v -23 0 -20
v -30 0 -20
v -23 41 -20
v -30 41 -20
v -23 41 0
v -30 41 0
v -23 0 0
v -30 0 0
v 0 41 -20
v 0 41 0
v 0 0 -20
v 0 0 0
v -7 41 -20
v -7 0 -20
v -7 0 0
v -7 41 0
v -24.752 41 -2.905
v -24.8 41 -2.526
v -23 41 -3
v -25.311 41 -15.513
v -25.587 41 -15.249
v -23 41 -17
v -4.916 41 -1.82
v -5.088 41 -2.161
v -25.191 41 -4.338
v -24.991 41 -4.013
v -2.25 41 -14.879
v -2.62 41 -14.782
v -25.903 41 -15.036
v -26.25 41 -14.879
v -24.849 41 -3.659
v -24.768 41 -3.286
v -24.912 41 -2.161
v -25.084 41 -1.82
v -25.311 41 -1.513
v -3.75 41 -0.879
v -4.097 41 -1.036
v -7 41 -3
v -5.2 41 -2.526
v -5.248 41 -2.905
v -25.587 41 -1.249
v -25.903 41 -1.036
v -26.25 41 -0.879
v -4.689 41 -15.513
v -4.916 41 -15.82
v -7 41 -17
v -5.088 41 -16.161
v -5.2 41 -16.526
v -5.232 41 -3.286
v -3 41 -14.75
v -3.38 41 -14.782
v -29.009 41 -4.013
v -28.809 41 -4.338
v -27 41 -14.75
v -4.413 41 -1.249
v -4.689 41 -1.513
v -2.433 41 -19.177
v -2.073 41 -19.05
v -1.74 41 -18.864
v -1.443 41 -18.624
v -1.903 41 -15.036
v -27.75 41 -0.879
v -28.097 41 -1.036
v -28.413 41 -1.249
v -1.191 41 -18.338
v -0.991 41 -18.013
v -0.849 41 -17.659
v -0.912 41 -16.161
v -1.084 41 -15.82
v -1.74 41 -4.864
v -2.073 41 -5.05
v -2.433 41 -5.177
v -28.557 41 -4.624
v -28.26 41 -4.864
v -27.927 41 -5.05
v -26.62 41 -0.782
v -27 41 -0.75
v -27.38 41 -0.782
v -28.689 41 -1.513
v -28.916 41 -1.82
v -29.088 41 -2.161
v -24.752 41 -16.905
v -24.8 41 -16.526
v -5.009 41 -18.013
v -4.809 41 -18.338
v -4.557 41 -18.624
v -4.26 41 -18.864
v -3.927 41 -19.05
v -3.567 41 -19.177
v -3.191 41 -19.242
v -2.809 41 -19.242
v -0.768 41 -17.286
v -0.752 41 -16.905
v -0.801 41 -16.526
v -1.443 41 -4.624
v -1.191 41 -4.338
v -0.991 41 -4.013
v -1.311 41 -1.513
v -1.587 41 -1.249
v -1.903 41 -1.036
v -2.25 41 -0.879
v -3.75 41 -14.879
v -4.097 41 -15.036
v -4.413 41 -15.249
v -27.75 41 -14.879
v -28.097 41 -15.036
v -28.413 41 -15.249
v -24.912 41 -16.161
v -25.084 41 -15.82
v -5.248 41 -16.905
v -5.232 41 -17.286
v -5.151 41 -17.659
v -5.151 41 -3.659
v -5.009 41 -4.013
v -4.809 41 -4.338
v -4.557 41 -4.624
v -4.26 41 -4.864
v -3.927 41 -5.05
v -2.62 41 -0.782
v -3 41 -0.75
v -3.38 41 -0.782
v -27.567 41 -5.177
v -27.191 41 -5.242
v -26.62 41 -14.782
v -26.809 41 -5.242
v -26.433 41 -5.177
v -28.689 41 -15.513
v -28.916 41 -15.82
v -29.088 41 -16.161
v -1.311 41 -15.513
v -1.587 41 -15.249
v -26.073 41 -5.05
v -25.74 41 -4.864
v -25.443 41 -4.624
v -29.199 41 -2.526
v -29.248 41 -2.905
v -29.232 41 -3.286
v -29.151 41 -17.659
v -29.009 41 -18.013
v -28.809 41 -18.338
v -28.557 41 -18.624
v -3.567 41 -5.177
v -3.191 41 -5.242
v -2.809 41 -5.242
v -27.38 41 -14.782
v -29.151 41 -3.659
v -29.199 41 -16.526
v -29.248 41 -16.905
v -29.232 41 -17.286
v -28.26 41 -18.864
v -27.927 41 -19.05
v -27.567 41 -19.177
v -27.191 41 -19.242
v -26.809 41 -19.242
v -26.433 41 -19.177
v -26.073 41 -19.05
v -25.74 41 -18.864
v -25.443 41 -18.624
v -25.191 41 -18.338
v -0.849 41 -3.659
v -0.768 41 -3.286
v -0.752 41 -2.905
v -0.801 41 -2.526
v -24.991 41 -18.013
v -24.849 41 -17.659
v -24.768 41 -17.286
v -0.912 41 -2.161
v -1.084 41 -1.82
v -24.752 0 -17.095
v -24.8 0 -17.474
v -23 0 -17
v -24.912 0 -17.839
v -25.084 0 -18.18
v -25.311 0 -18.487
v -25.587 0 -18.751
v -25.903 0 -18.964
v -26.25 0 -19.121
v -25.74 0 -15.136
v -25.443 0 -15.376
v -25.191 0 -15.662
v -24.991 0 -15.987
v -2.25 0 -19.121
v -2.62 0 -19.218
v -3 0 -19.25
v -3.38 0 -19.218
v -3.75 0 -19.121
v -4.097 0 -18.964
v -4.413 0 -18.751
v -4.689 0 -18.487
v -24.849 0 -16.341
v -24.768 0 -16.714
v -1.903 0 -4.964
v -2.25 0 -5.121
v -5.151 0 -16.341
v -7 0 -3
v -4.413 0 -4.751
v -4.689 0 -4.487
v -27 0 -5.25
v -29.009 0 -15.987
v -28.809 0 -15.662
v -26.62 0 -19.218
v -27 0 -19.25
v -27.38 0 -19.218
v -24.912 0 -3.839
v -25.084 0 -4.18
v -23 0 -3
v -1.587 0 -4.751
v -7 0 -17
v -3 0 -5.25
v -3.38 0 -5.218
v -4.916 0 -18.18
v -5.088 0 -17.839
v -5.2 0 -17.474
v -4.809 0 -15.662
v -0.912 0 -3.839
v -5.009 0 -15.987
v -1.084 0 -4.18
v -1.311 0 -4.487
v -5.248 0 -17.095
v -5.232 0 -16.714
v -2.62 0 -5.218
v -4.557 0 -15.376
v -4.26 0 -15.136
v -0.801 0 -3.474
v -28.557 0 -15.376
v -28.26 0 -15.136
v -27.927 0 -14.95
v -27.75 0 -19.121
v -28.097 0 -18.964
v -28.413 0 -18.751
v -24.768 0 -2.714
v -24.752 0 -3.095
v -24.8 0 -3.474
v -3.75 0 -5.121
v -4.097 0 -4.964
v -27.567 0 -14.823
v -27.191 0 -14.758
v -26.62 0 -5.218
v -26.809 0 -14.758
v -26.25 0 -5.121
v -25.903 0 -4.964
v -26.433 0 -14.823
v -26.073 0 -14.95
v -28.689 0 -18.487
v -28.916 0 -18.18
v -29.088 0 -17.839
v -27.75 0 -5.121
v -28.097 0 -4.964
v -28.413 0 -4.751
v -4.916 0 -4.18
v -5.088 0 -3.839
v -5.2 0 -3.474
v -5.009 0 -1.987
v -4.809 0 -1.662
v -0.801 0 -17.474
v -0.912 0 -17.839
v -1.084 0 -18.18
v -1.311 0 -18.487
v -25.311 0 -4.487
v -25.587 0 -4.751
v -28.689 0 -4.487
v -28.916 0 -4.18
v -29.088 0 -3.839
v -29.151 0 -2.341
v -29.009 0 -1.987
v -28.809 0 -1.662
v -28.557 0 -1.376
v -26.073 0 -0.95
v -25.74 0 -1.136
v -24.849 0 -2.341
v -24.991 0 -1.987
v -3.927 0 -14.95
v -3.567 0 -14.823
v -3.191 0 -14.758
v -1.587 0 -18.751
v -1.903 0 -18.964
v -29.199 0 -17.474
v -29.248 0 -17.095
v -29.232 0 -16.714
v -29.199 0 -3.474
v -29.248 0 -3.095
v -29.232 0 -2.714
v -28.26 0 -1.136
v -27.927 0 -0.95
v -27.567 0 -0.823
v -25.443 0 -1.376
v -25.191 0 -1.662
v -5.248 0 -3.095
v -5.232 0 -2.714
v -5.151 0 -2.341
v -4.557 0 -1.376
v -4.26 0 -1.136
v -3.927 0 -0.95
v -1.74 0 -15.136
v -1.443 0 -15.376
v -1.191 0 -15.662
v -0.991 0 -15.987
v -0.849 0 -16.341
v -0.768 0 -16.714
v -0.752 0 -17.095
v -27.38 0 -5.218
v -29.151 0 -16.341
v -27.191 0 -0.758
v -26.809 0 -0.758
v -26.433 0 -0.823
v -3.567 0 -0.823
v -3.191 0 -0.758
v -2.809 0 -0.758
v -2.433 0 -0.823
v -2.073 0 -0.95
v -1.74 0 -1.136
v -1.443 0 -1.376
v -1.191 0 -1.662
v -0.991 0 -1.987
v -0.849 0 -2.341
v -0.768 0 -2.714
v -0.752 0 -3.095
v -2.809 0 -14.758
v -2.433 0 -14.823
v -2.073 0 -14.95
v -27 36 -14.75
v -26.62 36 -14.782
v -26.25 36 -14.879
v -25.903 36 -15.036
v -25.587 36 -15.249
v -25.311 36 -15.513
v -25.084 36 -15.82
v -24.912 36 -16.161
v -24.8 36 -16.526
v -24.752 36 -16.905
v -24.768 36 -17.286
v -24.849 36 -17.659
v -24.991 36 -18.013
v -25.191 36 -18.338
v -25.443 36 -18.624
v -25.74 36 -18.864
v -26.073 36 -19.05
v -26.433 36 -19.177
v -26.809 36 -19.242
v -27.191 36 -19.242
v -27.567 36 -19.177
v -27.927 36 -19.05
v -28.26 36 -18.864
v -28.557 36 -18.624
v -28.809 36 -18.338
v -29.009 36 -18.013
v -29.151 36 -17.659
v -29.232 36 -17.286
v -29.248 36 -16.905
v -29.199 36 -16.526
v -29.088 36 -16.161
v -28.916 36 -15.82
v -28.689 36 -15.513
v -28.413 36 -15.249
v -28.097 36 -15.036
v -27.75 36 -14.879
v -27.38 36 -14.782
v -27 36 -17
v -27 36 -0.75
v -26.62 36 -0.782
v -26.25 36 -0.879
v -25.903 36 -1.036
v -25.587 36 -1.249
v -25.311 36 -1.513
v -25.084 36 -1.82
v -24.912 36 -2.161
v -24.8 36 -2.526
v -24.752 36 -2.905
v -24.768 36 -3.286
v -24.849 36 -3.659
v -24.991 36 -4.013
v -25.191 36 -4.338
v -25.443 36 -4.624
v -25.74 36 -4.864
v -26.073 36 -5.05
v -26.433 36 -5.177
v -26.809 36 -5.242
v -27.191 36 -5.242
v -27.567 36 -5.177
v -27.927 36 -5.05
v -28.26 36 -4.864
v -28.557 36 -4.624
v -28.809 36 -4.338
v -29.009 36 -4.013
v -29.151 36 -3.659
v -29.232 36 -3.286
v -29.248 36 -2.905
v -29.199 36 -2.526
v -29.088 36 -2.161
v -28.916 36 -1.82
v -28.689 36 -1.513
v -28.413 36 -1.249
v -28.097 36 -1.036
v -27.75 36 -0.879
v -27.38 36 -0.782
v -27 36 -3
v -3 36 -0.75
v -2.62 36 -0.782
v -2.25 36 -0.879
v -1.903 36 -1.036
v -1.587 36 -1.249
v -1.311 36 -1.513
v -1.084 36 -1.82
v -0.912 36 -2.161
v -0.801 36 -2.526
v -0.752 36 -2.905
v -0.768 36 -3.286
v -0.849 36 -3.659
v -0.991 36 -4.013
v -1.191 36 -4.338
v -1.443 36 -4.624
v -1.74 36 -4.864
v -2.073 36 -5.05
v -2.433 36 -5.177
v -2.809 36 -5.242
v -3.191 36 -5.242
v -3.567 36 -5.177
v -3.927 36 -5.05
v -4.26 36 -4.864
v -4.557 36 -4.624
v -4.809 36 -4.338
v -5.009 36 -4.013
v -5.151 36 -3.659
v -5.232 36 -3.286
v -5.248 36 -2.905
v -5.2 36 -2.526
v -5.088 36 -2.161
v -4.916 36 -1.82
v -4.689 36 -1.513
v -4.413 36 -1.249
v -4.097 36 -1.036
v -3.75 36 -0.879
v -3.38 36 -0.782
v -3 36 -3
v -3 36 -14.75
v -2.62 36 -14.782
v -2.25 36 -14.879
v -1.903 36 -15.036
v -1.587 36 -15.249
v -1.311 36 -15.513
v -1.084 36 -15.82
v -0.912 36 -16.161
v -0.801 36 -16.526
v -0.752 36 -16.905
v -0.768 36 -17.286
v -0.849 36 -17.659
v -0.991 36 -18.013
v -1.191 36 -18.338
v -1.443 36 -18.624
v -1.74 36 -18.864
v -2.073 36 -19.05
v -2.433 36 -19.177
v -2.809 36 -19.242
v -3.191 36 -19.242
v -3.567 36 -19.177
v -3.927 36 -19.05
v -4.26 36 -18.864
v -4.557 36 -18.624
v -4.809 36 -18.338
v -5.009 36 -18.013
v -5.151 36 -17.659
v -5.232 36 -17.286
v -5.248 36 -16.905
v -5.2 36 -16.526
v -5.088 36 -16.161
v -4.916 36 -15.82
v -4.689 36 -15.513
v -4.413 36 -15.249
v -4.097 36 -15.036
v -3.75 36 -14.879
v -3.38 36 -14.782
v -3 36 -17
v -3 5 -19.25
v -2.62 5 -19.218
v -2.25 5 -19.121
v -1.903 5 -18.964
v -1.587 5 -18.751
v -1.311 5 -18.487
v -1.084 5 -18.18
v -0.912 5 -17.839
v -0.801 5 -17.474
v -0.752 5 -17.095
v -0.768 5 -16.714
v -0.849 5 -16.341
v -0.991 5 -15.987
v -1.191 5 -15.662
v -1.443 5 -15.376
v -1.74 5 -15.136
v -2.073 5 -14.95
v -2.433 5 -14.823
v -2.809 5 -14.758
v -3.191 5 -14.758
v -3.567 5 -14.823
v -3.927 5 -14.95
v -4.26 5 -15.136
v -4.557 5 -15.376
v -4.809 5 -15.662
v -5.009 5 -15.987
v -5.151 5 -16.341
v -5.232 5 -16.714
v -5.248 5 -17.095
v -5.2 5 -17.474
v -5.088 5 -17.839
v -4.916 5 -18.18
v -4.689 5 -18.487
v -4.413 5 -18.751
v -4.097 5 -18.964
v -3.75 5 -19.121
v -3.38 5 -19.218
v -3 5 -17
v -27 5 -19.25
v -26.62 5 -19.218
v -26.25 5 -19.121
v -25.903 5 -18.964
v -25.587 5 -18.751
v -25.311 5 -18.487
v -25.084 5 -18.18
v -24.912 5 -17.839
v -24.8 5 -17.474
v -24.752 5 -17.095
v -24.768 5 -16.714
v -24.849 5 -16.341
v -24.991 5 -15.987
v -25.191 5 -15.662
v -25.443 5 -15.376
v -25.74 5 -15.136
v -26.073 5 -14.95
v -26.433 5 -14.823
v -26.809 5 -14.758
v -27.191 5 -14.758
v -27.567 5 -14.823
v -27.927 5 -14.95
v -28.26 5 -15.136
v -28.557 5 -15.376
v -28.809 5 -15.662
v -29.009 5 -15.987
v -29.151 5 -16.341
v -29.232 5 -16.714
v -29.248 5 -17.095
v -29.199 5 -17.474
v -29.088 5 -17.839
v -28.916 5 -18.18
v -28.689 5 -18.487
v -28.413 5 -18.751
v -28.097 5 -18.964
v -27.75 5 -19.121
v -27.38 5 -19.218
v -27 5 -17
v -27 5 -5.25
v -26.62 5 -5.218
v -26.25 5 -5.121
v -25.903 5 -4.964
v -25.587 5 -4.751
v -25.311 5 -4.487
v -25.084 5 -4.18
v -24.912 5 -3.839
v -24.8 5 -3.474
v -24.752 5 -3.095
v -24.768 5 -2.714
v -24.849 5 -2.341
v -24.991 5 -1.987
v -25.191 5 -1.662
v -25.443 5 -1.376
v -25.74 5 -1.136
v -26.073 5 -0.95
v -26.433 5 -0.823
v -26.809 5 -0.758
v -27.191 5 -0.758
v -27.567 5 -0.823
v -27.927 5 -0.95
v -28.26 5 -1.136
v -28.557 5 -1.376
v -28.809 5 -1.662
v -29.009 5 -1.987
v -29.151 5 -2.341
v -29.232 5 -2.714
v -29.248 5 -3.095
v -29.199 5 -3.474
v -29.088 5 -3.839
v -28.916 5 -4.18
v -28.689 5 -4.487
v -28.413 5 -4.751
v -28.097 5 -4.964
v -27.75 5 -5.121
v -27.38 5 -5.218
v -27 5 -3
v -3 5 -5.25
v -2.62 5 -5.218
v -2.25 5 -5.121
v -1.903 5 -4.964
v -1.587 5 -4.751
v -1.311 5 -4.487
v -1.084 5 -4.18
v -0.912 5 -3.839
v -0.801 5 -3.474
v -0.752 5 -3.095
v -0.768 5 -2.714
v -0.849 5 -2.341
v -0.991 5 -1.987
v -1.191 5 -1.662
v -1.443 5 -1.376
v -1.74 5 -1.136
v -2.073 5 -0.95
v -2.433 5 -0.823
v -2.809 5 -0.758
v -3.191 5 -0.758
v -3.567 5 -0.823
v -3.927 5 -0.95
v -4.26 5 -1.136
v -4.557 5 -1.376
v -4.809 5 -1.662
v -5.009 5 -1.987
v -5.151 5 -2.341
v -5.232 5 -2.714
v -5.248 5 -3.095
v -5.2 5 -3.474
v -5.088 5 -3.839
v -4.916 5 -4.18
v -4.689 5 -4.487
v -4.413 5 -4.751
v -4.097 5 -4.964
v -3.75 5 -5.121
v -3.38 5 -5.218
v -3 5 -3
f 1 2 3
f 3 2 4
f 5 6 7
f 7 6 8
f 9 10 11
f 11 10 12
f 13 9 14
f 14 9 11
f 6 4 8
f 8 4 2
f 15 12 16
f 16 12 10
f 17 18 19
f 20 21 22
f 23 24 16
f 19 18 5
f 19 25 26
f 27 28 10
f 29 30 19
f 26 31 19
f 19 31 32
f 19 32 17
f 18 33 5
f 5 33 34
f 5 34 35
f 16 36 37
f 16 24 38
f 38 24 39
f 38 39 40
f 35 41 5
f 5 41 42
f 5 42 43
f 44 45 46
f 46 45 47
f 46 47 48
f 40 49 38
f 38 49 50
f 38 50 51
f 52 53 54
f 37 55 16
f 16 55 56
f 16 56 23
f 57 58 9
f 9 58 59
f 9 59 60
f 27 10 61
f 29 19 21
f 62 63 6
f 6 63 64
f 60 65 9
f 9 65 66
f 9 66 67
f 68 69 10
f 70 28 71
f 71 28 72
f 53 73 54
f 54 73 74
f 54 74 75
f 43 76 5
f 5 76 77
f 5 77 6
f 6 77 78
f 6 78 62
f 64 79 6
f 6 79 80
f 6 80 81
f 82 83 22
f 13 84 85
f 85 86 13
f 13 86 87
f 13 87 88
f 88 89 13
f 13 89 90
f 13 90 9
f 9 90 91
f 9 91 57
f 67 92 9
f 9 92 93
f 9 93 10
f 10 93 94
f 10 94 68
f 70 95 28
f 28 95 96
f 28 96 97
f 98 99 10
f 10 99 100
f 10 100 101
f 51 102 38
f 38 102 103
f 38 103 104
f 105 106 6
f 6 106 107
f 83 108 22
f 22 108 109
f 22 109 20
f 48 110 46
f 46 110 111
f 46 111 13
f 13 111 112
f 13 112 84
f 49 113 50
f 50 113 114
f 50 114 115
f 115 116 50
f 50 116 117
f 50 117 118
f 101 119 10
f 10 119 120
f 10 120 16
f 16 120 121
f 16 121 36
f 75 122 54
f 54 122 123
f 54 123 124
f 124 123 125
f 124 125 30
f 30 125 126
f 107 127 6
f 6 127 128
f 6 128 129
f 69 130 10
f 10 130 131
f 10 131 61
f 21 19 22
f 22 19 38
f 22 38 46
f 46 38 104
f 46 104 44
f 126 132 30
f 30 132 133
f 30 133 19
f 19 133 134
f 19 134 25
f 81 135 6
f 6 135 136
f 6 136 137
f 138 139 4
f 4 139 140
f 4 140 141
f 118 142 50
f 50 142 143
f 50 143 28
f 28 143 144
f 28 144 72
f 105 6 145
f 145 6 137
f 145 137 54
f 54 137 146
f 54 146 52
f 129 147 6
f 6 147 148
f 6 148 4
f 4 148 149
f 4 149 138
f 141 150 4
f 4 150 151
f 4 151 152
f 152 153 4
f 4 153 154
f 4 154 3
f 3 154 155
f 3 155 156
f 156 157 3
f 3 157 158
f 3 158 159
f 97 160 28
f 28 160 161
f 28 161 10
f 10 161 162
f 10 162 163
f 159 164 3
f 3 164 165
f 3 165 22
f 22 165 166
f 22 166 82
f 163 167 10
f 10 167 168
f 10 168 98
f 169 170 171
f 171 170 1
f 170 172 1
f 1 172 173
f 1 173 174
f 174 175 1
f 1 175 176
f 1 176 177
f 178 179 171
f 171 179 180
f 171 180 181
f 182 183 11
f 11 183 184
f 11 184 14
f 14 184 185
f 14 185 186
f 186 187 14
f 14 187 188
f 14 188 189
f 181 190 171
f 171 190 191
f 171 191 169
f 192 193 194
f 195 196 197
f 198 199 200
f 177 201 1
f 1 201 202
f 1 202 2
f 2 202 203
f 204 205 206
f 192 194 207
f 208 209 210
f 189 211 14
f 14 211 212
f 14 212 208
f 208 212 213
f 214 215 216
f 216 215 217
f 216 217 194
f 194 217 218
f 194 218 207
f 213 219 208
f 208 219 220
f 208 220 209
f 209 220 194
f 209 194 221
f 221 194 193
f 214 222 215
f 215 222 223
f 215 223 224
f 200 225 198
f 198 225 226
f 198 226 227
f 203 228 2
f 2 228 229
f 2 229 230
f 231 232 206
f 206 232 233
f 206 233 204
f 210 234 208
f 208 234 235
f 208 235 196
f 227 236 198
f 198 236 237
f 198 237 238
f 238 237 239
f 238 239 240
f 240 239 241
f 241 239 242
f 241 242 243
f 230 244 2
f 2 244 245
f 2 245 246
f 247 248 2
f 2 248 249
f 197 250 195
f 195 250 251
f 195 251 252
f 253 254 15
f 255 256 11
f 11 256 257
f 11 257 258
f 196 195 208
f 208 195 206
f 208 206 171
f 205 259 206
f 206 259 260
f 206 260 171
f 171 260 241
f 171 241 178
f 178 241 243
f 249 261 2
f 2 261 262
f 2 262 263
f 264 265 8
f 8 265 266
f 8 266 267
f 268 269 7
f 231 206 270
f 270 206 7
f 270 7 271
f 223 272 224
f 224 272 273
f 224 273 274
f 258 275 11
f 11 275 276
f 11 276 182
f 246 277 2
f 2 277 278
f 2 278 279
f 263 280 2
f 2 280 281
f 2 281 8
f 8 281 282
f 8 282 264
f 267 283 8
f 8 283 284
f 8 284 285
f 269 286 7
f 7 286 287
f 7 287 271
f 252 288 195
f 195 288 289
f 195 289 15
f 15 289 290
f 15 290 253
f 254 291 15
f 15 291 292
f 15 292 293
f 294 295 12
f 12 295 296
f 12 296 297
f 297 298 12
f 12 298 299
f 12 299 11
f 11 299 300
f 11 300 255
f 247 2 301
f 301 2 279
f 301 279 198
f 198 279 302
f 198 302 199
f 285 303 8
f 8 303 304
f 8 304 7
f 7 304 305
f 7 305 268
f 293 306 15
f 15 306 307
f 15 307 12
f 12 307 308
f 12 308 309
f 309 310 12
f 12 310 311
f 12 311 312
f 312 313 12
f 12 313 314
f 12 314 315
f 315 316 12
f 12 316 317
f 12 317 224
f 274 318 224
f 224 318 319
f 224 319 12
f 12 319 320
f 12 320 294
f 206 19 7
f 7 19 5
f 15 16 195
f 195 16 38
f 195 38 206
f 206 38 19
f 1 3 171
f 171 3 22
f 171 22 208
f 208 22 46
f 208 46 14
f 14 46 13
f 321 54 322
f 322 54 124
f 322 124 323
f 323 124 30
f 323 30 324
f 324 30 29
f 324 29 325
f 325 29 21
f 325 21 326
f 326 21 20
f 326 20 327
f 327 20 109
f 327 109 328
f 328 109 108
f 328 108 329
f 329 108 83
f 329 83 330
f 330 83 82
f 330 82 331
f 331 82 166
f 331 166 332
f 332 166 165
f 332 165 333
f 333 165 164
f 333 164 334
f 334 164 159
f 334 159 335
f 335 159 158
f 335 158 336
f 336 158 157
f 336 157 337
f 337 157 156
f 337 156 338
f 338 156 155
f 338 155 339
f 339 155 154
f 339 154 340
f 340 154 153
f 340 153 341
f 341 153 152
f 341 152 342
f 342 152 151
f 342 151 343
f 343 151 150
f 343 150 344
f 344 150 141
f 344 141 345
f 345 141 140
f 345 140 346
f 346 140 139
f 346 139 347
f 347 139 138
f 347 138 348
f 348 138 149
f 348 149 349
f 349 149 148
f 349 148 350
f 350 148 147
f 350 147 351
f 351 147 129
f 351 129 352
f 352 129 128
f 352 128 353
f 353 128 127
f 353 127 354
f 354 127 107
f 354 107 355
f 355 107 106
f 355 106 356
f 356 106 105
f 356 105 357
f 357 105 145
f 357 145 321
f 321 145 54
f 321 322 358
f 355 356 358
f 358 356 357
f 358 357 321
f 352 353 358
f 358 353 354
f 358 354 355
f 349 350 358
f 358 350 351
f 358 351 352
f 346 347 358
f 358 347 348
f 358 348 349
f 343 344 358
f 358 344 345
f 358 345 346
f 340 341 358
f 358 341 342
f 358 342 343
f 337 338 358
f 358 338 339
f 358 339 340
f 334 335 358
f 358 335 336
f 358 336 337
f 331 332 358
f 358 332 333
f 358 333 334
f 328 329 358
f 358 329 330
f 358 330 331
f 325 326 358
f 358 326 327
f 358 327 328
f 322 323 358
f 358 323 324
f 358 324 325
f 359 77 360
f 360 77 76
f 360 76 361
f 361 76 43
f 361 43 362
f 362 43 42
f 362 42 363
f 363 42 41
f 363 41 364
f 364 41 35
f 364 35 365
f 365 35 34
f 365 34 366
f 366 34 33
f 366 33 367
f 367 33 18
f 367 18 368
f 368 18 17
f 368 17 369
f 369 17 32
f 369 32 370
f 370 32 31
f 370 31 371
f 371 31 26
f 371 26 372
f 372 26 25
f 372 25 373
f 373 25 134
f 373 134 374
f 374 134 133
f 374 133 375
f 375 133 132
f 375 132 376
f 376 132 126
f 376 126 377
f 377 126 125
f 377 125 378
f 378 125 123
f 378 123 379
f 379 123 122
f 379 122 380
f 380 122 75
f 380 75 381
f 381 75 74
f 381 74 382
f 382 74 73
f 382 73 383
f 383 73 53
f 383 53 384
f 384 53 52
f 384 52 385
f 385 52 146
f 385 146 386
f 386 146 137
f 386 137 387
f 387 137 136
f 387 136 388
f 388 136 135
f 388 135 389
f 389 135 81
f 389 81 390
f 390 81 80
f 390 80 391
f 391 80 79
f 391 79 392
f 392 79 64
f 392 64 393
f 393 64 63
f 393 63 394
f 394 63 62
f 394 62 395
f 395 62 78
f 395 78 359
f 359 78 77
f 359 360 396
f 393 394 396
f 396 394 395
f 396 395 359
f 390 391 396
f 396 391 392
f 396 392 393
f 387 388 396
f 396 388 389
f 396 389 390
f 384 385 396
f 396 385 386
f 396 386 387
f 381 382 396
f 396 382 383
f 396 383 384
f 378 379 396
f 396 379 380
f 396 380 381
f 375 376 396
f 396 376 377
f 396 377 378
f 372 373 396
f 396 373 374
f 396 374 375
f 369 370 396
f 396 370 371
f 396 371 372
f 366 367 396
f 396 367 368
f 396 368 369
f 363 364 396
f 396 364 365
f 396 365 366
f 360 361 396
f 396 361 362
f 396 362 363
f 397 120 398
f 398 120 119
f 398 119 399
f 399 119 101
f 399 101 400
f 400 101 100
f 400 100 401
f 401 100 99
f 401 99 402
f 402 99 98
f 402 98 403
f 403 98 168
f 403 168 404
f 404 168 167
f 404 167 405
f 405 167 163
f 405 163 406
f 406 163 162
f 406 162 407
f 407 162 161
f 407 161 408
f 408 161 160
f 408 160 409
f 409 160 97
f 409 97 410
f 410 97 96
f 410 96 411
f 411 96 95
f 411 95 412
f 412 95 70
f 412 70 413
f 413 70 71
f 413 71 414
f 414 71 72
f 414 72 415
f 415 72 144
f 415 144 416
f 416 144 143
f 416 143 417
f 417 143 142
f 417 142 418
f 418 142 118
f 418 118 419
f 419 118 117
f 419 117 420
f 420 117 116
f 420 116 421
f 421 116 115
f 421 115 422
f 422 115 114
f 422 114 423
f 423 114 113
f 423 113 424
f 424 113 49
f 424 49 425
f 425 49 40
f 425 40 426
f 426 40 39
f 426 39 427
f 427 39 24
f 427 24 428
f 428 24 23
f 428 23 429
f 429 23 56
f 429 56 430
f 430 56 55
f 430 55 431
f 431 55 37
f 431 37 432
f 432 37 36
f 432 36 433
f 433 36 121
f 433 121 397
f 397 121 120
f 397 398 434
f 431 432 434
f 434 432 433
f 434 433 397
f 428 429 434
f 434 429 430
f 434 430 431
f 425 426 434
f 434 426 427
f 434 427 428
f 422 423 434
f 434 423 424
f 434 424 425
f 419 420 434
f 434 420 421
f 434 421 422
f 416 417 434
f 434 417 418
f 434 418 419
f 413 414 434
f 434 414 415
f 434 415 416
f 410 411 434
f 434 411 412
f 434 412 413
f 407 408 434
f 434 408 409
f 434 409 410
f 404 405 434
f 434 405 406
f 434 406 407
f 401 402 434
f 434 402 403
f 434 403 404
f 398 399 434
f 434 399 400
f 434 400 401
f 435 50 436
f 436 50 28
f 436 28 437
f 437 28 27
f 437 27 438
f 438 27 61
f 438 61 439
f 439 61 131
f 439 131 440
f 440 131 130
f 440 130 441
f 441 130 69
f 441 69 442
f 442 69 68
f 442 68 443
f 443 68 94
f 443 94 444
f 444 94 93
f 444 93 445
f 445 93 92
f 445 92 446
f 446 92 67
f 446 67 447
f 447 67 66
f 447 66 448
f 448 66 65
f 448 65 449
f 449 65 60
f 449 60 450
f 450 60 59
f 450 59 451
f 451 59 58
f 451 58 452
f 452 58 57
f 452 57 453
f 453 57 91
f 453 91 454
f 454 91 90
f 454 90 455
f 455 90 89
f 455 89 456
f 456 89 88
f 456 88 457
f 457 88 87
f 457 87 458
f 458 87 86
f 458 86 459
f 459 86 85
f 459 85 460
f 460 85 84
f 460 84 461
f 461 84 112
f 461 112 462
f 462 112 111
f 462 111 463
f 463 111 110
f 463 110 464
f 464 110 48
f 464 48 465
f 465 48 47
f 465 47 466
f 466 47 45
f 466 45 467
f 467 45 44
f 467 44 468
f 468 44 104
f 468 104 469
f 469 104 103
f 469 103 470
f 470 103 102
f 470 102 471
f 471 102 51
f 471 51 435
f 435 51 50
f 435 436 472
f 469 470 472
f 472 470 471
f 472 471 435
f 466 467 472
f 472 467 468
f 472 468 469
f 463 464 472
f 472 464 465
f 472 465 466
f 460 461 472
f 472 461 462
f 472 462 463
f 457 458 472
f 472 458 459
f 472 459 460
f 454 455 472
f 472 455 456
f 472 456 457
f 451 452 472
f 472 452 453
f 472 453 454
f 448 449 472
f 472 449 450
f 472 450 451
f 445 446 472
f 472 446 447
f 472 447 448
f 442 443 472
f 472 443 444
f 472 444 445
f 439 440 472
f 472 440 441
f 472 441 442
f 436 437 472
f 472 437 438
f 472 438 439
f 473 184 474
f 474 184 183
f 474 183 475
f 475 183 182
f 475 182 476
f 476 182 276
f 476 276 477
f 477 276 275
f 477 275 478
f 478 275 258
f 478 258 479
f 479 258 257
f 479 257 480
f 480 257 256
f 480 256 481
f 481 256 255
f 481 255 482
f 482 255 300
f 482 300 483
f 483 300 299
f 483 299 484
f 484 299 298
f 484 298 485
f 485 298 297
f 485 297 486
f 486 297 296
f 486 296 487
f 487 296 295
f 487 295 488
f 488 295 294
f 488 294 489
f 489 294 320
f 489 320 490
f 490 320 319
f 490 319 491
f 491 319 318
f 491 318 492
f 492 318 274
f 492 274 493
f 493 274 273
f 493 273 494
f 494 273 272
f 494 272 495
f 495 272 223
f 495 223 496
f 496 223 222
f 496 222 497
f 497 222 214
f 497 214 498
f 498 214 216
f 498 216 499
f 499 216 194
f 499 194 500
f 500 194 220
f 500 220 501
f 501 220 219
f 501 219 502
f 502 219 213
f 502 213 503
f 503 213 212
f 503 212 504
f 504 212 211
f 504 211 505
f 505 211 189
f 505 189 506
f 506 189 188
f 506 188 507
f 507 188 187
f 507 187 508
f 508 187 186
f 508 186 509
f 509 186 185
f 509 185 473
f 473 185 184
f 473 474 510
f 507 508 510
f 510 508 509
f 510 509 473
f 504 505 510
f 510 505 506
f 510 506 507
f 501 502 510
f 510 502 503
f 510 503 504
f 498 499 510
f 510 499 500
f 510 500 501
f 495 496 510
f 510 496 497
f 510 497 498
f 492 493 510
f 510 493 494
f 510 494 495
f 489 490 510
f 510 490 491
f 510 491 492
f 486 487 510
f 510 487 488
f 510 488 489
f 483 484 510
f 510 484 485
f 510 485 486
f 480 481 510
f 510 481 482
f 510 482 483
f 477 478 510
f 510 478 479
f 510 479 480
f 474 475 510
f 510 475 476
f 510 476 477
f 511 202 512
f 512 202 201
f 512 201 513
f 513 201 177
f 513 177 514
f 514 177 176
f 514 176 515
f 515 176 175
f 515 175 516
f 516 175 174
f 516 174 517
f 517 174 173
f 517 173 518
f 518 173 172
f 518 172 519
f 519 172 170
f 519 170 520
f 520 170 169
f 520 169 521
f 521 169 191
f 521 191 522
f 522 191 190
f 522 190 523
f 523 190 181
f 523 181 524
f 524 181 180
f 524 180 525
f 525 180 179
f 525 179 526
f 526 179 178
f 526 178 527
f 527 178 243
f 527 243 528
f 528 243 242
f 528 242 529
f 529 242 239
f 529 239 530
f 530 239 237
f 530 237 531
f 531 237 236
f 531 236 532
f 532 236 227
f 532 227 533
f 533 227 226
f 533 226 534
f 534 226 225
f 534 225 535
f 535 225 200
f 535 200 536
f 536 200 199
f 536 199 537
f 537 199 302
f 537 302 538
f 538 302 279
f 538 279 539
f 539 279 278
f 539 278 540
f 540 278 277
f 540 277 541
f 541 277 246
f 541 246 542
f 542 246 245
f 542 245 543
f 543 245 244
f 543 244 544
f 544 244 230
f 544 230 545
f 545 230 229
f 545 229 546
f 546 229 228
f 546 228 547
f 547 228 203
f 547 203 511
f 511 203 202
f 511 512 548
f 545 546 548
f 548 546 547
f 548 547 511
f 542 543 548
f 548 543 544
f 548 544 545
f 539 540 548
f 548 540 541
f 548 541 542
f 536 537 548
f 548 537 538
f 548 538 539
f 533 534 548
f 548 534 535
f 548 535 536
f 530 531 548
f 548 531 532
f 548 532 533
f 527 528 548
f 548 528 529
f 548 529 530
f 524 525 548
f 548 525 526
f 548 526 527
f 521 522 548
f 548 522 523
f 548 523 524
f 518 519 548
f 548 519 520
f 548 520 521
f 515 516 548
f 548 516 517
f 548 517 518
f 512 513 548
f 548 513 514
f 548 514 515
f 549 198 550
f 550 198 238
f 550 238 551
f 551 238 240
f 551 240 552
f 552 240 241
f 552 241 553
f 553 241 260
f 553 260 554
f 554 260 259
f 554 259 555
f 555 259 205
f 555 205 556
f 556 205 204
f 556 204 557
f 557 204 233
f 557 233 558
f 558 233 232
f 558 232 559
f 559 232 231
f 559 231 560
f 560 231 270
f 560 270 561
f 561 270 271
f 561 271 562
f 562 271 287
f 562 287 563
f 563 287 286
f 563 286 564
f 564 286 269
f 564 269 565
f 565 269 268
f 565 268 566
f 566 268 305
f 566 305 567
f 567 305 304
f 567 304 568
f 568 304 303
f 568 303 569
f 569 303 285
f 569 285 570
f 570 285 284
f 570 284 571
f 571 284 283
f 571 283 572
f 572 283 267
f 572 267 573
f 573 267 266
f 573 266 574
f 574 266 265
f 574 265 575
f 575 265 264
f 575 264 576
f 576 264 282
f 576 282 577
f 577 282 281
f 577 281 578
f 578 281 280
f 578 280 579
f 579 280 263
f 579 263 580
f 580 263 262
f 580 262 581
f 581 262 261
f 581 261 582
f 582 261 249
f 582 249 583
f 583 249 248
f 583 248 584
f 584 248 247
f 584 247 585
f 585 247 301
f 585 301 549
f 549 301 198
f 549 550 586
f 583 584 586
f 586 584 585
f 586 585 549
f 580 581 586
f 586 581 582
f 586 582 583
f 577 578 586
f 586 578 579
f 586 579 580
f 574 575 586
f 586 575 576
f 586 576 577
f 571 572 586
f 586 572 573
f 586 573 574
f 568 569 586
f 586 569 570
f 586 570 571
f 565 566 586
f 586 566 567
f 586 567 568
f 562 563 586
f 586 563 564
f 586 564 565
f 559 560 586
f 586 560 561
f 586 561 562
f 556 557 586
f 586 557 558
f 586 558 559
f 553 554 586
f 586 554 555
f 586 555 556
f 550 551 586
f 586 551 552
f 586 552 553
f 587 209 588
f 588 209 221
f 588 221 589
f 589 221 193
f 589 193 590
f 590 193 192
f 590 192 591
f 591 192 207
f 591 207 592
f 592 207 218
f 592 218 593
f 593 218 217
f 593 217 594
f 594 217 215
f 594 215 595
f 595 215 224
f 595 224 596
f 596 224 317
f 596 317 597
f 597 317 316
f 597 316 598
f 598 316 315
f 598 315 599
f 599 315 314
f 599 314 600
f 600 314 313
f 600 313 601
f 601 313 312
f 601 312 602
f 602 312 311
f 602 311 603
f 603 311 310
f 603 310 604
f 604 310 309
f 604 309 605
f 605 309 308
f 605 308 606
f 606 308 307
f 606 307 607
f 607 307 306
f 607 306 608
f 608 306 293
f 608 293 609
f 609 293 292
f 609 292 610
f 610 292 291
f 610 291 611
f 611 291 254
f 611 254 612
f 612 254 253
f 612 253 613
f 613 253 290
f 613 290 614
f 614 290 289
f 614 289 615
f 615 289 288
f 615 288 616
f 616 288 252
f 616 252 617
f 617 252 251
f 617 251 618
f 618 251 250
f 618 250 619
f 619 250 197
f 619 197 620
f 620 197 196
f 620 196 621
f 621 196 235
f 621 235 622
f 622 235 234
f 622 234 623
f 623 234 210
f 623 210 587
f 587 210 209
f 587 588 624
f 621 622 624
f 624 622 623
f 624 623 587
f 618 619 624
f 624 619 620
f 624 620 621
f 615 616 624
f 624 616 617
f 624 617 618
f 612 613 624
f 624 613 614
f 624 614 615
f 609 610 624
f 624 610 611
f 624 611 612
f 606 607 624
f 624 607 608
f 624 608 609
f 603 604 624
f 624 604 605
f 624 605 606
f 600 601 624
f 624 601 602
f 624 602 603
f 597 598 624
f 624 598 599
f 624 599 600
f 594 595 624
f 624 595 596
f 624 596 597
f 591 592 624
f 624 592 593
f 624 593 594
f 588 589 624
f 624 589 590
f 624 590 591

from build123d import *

# Parameters (mm, degrees)
SKETCH_1_W           = 30
SKETCH_1_H           = 20
EXTRUDE_1_DEPTH      = 41
CUT_EXTRUDE_15_REACH = 56.599
SKETCH_17_W          = 7
SKETCH_17_H          = 8
SKETCH_17_W_2        = 16
SKETCH_17_H_2        = 3
SKETCH_20_R          = 2.25
CUT_EXTRUDE_18_DEPTH = 5
SKETCH_21_W          = 8
SKETCH_21_H          = 41
EXTRUDE_2_DEPTH      = 7
SKETCH_22_W          = 8
SKETCH_22_H          = 41
EXTRUDE_3_DEPTH      = 7
CUT_EXTRUDE_START    = -5
SKETCH_23_R          = 2.25
CUT_EXTRUDE_19_DEPTH = 5


with BuildPart() as part:
    # 草图1 → 凸台-拉伸1 (new body)
    with BuildSketch(Plane(origin=(0, 0, 0), x_dir=(1, 0, 0), z_dir=(0, 1, 0))):
        with Locations((-15, 10)):
            Rectangle(SKETCH_1_W, SKETCH_1_H)
    extrude(amount=EXTRUDE_1_DEPTH)

    # 草图17 → 切除-拉伸15 (cut, up to next)
    with BuildSketch(Plane.XZ, mode=Mode.PRIVATE) as cut_extrude_15_sk1:
        with Locations((-26.5, -10)):
            Rectangle(SKETCH_17_W, SKETCH_17_H)
    cut_extrude_15_tool1 = extrude(cut_extrude_15_sk1.sketch, amount=-CUT_EXTRUDE_15_REACH, mode=Mode.PRIVATE) & part.part
    # 草图17 → 切除-拉伸15 (cut, up to next)
    with BuildSketch(Plane.XZ, mode=Mode.PRIVATE) as cut_extrude_15_sk2:
        with Locations((-3.5, -10)):
            Rectangle(SKETCH_17_W, SKETCH_17_H)
    cut_extrude_15_tool2 = extrude(cut_extrude_15_sk2.sketch, amount=-CUT_EXTRUDE_15_REACH, mode=Mode.PRIVATE) & part.part
    # 草图17 → 切除-拉伸15 (cut, up to next)
    with BuildSketch(Plane.XZ, mode=Mode.PRIVATE) as cut_extrude_15_sk3:
        with Locations((-15, -1.5)):
            Rectangle(SKETCH_17_W_2, SKETCH_17_H_2)
    cut_extrude_15_tool3 = extrude(cut_extrude_15_sk3.sketch, amount=-CUT_EXTRUDE_15_REACH, mode=Mode.PRIVATE) & part.part
    # 草图17 → 切除-拉伸15 (cut, up to next)
    with BuildSketch(Plane.XZ, mode=Mode.PRIVATE) as cut_extrude_15_sk4:
        with Locations((-15, -18.5)):
            Rectangle(SKETCH_17_W_2, SKETCH_17_H_2)
    cut_extrude_15_tool4 = extrude(cut_extrude_15_sk4.sketch, amount=-CUT_EXTRUDE_15_REACH, mode=Mode.PRIVATE) & part.part
    add(cut_extrude_15_tool1.solids().sort_by_distance((-26.5, 0, -10))[0], mode=Mode.SUBTRACT)
    add(cut_extrude_15_tool2.solids().sort_by_distance((-3.5, 0, -10))[0], mode=Mode.SUBTRACT)
    add(cut_extrude_15_tool3.solids().sort_by_distance((-15, 0, -1.5))[0], mode=Mode.SUBTRACT)
    add(cut_extrude_15_tool4.solids().sort_by_distance((-15, 0, -18.5))[0], mode=Mode.SUBTRACT)

    # 草图20 → 切除-拉伸18 (cut)
    with BuildSketch(Plane(origin=(0, 41, 0), x_dir=(1, 0, 0), z_dir=(0, 1, 0))):
        with Locations(Location((-27, 17, 0), (0, 0, 270))):
            Circle(SKETCH_20_R)
        with Locations(Location((-27, 3, 0), (0, 0, 270))):
            Circle(SKETCH_20_R)
        with Locations(Location((-3, 3, 0), (0, 0, 270))):
            Circle(SKETCH_20_R)
        with Locations(Location((-3, 17, 0), (0, 0, 270))):
            Circle(SKETCH_20_R)
    extrude(amount=-CUT_EXTRUDE_18_DEPTH, mode=Mode.SUBTRACT)

    # 草图21 → 凸台-拉伸2 (add)
    with BuildSketch(Plane(origin=(-7, 0, 0), x_dir=(0, 0, -1), z_dir=(1, 0, 0))):
        with Locations((10, 20.5)):
            Rectangle(SKETCH_21_W, SKETCH_21_H)
    extrude(amount=EXTRUDE_2_DEPTH)

    # 草图22 → 凸台-拉伸3 (add)
    with BuildSketch(Plane.ZY.offset(23)):
        with Locations((-10, 20.5)):
            Rectangle(SKETCH_22_W, SKETCH_22_H)
    extrude(amount=EXTRUDE_3_DEPTH)

    # 草图23 → 切除-拉伸19 (cut)
    with BuildSketch(Plane.XZ.offset(CUT_EXTRUDE_START)):
        with Locations(Location((-3, -17, 0), (0, 0, 90))):
            Circle(SKETCH_23_R)
        with Locations(Location((-27, -17, 0), (0, 0, 90))):
            Circle(SKETCH_23_R)
        with Locations(Location((-27, -3, 0), (0, 0, 90))):
            Circle(SKETCH_23_R)
        with Locations(Location((-3, -3, 0), (0, 0, 90))):
            Circle(SKETCH_23_R)
    extrude(amount=CUT_EXTRUDE_19_DEPTH, mode=Mode.SUBTRACT)


solid = part.part
